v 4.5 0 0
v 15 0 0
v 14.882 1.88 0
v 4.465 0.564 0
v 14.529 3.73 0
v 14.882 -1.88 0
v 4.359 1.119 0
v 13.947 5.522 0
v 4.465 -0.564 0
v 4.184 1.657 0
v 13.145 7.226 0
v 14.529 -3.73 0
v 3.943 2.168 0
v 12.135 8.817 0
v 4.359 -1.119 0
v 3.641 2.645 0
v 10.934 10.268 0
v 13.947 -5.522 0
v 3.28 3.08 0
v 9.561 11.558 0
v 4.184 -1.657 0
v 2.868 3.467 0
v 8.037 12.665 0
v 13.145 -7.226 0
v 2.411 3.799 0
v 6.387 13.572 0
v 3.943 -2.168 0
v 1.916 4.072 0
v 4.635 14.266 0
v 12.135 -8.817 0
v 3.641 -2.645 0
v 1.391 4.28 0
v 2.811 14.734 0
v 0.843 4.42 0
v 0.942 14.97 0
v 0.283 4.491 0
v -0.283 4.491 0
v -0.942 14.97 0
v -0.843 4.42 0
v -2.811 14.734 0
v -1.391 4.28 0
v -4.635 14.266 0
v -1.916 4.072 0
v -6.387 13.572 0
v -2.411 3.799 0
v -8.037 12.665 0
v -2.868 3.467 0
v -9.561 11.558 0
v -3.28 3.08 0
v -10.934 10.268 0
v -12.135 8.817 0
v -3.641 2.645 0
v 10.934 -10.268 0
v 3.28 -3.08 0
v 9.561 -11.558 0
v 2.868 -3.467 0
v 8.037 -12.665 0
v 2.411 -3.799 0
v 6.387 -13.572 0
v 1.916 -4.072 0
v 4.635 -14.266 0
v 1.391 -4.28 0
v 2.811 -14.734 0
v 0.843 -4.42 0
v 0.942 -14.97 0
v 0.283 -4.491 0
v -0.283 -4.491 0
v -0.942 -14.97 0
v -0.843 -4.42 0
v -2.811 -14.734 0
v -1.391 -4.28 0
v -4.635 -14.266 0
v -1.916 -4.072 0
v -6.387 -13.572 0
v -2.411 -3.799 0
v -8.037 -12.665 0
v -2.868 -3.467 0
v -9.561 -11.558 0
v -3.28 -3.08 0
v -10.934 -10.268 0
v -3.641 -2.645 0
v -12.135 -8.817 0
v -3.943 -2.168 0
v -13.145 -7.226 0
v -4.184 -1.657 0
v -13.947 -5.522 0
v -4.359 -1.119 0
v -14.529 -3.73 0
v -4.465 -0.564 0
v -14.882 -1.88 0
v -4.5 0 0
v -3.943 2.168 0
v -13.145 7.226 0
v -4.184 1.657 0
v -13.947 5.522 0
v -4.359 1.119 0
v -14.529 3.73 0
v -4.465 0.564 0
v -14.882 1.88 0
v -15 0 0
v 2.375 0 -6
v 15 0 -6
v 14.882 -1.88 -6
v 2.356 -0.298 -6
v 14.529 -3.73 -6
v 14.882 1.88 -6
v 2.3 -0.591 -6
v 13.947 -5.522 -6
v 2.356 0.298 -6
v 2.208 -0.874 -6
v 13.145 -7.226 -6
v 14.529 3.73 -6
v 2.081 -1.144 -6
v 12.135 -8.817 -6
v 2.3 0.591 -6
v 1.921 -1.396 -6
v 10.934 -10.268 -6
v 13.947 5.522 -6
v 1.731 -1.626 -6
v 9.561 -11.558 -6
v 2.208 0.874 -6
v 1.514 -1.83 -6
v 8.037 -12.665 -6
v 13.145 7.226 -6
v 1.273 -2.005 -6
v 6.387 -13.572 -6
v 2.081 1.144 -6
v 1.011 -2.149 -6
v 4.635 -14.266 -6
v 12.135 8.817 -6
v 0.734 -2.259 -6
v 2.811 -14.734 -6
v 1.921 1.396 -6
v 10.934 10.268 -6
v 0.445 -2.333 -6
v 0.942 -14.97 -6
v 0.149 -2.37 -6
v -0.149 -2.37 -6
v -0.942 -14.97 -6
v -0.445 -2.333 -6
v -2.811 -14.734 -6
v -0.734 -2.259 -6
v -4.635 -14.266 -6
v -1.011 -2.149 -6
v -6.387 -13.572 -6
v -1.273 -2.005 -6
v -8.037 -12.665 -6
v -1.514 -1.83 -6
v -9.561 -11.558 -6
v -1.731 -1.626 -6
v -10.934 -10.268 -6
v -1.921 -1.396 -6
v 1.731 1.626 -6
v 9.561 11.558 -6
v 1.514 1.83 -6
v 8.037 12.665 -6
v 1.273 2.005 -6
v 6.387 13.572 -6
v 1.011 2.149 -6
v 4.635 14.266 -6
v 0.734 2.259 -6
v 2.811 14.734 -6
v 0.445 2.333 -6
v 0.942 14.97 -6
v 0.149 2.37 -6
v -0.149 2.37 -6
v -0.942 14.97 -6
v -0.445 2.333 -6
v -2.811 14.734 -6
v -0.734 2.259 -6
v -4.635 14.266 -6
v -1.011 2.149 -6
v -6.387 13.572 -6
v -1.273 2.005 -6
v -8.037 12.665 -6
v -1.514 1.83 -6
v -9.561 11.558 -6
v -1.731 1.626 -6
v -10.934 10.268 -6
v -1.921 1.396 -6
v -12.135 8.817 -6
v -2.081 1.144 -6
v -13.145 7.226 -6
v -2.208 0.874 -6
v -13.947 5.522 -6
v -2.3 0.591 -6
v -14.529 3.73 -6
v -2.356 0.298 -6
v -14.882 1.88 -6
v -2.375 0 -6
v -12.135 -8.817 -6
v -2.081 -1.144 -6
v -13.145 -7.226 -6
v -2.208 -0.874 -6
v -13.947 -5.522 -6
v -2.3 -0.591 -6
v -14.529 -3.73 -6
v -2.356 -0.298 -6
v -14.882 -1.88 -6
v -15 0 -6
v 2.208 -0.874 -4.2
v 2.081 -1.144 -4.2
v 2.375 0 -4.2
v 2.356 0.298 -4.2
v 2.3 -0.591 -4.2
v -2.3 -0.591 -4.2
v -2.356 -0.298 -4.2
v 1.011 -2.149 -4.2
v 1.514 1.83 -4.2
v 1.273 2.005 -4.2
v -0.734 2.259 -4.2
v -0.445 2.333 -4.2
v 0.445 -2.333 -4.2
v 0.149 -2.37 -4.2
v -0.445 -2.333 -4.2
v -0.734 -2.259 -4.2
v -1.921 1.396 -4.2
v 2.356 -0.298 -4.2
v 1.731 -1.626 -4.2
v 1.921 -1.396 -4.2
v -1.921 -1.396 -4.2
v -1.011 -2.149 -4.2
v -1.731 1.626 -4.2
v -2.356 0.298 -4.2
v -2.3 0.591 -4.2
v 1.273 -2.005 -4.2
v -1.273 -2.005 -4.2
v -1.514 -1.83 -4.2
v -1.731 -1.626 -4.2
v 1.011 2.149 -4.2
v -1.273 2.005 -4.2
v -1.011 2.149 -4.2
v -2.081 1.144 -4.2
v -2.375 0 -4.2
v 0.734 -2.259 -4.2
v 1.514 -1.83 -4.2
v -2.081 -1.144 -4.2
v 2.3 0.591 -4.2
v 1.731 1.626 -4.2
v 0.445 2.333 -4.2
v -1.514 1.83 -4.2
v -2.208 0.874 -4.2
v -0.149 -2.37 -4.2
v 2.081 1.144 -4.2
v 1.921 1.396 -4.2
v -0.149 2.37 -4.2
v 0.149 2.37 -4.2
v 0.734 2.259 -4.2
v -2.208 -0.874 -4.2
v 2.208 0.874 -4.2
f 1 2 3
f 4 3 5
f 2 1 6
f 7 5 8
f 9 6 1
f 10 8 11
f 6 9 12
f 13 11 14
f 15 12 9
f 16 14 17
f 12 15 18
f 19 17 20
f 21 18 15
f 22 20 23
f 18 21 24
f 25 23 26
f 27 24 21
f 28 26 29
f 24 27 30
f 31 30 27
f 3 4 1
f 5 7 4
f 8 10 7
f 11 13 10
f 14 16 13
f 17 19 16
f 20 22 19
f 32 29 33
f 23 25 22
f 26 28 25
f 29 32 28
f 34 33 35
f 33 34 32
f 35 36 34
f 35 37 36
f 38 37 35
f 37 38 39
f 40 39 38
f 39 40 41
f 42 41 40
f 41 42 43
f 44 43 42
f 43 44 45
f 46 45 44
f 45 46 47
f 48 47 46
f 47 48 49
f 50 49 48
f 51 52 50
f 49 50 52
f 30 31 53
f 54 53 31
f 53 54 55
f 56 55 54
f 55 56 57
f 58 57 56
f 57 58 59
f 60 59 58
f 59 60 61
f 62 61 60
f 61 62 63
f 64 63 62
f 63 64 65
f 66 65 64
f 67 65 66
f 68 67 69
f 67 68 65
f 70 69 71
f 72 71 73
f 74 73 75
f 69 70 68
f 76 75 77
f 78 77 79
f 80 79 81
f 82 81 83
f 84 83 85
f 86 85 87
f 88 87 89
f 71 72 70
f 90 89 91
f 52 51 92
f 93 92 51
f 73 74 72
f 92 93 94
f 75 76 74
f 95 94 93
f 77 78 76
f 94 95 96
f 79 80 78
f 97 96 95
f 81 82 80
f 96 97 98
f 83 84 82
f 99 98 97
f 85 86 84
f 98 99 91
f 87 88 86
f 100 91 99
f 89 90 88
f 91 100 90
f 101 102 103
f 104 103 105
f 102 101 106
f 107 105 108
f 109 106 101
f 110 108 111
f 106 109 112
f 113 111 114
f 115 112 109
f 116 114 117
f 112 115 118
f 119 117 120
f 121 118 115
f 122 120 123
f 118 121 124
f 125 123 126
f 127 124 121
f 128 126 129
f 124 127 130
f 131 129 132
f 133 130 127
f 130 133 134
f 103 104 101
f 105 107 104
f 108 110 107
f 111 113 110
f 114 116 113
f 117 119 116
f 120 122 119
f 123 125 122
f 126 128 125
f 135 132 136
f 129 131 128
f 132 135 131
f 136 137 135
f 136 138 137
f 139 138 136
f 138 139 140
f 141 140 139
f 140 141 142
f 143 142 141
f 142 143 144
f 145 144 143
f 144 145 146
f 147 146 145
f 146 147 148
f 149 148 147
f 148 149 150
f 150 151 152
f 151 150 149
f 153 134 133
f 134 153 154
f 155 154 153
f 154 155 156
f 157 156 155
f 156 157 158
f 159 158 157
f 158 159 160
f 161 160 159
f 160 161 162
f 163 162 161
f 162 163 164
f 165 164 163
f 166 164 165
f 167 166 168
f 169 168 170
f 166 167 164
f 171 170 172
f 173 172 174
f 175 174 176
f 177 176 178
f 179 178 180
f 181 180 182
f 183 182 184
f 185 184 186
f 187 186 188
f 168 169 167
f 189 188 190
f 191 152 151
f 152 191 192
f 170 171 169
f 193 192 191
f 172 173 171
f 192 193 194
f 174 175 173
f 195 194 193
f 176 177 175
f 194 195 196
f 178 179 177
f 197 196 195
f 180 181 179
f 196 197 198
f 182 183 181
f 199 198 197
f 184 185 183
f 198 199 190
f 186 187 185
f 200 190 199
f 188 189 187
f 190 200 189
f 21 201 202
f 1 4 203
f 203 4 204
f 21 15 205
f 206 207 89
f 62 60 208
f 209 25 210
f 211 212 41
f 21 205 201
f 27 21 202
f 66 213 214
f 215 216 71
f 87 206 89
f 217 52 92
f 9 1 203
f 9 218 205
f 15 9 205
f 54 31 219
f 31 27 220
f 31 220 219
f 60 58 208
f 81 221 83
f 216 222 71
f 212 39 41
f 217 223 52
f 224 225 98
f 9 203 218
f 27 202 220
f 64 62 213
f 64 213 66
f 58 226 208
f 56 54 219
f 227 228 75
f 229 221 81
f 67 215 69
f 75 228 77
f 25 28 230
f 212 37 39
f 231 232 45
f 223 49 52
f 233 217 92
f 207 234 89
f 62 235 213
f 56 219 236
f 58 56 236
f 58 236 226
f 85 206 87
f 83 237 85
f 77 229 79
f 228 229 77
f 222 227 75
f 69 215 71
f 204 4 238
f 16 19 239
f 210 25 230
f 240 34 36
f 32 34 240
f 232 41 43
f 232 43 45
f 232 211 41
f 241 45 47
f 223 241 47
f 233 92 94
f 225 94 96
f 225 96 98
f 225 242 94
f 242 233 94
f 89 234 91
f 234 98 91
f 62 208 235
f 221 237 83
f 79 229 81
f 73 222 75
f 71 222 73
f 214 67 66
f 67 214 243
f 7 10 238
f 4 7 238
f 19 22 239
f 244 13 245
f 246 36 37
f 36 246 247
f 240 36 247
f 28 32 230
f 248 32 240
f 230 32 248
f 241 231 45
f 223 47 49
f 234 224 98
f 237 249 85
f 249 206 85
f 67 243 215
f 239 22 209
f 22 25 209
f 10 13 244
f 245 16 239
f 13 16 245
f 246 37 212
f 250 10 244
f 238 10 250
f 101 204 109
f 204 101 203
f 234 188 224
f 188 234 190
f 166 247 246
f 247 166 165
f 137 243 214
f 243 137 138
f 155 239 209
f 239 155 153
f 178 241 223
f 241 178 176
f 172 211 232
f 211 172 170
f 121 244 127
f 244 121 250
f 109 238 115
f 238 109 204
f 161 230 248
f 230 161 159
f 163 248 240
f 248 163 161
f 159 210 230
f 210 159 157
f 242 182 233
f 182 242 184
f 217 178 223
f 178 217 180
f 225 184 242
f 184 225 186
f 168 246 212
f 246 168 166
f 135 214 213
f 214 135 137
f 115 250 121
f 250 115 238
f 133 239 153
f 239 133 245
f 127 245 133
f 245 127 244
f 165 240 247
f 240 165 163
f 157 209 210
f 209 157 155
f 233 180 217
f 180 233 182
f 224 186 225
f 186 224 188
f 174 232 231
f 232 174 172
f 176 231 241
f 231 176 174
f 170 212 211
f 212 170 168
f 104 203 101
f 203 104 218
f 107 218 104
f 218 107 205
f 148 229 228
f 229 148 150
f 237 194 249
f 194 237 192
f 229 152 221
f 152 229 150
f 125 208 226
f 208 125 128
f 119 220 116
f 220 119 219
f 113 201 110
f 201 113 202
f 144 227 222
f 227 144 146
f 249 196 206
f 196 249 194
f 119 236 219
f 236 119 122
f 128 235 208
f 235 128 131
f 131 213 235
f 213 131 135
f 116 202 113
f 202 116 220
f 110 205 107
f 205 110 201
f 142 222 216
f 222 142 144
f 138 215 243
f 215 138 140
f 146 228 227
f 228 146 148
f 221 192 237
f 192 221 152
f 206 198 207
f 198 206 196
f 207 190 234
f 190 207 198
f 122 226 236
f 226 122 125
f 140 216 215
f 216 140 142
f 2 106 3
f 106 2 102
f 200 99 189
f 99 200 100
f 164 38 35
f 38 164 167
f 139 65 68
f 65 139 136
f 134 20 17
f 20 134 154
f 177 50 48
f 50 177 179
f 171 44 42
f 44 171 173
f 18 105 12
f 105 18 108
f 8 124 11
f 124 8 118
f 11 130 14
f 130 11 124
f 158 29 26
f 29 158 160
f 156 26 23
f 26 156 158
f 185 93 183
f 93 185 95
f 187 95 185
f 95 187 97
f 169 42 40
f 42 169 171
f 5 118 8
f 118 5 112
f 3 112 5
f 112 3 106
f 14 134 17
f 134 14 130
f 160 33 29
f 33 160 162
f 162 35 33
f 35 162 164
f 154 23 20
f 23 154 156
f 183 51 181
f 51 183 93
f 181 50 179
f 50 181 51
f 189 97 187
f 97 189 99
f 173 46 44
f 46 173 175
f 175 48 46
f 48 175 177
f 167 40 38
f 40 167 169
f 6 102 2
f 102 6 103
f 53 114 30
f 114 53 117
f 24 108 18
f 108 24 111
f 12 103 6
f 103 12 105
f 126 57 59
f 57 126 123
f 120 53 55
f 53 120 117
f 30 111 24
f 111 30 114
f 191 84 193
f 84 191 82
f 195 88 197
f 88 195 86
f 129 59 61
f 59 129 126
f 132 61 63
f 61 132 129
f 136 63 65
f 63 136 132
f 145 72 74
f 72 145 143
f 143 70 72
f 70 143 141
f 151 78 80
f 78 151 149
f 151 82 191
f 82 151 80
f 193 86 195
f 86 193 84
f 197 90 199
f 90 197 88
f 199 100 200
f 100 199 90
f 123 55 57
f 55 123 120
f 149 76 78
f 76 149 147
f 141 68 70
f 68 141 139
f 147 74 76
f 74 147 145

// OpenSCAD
$fn = 50;


difference() {
	union() {
		translate(v = [0, 0, -6.0000000000]) {
			cylinder(h = 6, r = 15.0000000000);
		}
	}
	union() {
		translate(v = [0, 0, 0]) {
			rotate(a = [0, 0, 0]) {
				difference() {
					union() {
						translate(v = [0, 0, -6.0000000000]) {
							cylinder(h = 6, r = 2.2500000000);
						}
						translate(v = [0, 0, -4.2000000000]) {
							cylinder(h = 4.2000000000, r1 = 2.3750000000, r2 = 4.5000000000);
						}
						translate(v = [0, 0, -6.0000000000]) {
							cylinder(h = 6, r = 2.3750000000);
						}
						translate(v = [0, 0, -6.0000000000]) {
							cylinder(h = 6, r = 2.2500000000);
						}
					}
					union();
				}
			}
		}
	}
}
